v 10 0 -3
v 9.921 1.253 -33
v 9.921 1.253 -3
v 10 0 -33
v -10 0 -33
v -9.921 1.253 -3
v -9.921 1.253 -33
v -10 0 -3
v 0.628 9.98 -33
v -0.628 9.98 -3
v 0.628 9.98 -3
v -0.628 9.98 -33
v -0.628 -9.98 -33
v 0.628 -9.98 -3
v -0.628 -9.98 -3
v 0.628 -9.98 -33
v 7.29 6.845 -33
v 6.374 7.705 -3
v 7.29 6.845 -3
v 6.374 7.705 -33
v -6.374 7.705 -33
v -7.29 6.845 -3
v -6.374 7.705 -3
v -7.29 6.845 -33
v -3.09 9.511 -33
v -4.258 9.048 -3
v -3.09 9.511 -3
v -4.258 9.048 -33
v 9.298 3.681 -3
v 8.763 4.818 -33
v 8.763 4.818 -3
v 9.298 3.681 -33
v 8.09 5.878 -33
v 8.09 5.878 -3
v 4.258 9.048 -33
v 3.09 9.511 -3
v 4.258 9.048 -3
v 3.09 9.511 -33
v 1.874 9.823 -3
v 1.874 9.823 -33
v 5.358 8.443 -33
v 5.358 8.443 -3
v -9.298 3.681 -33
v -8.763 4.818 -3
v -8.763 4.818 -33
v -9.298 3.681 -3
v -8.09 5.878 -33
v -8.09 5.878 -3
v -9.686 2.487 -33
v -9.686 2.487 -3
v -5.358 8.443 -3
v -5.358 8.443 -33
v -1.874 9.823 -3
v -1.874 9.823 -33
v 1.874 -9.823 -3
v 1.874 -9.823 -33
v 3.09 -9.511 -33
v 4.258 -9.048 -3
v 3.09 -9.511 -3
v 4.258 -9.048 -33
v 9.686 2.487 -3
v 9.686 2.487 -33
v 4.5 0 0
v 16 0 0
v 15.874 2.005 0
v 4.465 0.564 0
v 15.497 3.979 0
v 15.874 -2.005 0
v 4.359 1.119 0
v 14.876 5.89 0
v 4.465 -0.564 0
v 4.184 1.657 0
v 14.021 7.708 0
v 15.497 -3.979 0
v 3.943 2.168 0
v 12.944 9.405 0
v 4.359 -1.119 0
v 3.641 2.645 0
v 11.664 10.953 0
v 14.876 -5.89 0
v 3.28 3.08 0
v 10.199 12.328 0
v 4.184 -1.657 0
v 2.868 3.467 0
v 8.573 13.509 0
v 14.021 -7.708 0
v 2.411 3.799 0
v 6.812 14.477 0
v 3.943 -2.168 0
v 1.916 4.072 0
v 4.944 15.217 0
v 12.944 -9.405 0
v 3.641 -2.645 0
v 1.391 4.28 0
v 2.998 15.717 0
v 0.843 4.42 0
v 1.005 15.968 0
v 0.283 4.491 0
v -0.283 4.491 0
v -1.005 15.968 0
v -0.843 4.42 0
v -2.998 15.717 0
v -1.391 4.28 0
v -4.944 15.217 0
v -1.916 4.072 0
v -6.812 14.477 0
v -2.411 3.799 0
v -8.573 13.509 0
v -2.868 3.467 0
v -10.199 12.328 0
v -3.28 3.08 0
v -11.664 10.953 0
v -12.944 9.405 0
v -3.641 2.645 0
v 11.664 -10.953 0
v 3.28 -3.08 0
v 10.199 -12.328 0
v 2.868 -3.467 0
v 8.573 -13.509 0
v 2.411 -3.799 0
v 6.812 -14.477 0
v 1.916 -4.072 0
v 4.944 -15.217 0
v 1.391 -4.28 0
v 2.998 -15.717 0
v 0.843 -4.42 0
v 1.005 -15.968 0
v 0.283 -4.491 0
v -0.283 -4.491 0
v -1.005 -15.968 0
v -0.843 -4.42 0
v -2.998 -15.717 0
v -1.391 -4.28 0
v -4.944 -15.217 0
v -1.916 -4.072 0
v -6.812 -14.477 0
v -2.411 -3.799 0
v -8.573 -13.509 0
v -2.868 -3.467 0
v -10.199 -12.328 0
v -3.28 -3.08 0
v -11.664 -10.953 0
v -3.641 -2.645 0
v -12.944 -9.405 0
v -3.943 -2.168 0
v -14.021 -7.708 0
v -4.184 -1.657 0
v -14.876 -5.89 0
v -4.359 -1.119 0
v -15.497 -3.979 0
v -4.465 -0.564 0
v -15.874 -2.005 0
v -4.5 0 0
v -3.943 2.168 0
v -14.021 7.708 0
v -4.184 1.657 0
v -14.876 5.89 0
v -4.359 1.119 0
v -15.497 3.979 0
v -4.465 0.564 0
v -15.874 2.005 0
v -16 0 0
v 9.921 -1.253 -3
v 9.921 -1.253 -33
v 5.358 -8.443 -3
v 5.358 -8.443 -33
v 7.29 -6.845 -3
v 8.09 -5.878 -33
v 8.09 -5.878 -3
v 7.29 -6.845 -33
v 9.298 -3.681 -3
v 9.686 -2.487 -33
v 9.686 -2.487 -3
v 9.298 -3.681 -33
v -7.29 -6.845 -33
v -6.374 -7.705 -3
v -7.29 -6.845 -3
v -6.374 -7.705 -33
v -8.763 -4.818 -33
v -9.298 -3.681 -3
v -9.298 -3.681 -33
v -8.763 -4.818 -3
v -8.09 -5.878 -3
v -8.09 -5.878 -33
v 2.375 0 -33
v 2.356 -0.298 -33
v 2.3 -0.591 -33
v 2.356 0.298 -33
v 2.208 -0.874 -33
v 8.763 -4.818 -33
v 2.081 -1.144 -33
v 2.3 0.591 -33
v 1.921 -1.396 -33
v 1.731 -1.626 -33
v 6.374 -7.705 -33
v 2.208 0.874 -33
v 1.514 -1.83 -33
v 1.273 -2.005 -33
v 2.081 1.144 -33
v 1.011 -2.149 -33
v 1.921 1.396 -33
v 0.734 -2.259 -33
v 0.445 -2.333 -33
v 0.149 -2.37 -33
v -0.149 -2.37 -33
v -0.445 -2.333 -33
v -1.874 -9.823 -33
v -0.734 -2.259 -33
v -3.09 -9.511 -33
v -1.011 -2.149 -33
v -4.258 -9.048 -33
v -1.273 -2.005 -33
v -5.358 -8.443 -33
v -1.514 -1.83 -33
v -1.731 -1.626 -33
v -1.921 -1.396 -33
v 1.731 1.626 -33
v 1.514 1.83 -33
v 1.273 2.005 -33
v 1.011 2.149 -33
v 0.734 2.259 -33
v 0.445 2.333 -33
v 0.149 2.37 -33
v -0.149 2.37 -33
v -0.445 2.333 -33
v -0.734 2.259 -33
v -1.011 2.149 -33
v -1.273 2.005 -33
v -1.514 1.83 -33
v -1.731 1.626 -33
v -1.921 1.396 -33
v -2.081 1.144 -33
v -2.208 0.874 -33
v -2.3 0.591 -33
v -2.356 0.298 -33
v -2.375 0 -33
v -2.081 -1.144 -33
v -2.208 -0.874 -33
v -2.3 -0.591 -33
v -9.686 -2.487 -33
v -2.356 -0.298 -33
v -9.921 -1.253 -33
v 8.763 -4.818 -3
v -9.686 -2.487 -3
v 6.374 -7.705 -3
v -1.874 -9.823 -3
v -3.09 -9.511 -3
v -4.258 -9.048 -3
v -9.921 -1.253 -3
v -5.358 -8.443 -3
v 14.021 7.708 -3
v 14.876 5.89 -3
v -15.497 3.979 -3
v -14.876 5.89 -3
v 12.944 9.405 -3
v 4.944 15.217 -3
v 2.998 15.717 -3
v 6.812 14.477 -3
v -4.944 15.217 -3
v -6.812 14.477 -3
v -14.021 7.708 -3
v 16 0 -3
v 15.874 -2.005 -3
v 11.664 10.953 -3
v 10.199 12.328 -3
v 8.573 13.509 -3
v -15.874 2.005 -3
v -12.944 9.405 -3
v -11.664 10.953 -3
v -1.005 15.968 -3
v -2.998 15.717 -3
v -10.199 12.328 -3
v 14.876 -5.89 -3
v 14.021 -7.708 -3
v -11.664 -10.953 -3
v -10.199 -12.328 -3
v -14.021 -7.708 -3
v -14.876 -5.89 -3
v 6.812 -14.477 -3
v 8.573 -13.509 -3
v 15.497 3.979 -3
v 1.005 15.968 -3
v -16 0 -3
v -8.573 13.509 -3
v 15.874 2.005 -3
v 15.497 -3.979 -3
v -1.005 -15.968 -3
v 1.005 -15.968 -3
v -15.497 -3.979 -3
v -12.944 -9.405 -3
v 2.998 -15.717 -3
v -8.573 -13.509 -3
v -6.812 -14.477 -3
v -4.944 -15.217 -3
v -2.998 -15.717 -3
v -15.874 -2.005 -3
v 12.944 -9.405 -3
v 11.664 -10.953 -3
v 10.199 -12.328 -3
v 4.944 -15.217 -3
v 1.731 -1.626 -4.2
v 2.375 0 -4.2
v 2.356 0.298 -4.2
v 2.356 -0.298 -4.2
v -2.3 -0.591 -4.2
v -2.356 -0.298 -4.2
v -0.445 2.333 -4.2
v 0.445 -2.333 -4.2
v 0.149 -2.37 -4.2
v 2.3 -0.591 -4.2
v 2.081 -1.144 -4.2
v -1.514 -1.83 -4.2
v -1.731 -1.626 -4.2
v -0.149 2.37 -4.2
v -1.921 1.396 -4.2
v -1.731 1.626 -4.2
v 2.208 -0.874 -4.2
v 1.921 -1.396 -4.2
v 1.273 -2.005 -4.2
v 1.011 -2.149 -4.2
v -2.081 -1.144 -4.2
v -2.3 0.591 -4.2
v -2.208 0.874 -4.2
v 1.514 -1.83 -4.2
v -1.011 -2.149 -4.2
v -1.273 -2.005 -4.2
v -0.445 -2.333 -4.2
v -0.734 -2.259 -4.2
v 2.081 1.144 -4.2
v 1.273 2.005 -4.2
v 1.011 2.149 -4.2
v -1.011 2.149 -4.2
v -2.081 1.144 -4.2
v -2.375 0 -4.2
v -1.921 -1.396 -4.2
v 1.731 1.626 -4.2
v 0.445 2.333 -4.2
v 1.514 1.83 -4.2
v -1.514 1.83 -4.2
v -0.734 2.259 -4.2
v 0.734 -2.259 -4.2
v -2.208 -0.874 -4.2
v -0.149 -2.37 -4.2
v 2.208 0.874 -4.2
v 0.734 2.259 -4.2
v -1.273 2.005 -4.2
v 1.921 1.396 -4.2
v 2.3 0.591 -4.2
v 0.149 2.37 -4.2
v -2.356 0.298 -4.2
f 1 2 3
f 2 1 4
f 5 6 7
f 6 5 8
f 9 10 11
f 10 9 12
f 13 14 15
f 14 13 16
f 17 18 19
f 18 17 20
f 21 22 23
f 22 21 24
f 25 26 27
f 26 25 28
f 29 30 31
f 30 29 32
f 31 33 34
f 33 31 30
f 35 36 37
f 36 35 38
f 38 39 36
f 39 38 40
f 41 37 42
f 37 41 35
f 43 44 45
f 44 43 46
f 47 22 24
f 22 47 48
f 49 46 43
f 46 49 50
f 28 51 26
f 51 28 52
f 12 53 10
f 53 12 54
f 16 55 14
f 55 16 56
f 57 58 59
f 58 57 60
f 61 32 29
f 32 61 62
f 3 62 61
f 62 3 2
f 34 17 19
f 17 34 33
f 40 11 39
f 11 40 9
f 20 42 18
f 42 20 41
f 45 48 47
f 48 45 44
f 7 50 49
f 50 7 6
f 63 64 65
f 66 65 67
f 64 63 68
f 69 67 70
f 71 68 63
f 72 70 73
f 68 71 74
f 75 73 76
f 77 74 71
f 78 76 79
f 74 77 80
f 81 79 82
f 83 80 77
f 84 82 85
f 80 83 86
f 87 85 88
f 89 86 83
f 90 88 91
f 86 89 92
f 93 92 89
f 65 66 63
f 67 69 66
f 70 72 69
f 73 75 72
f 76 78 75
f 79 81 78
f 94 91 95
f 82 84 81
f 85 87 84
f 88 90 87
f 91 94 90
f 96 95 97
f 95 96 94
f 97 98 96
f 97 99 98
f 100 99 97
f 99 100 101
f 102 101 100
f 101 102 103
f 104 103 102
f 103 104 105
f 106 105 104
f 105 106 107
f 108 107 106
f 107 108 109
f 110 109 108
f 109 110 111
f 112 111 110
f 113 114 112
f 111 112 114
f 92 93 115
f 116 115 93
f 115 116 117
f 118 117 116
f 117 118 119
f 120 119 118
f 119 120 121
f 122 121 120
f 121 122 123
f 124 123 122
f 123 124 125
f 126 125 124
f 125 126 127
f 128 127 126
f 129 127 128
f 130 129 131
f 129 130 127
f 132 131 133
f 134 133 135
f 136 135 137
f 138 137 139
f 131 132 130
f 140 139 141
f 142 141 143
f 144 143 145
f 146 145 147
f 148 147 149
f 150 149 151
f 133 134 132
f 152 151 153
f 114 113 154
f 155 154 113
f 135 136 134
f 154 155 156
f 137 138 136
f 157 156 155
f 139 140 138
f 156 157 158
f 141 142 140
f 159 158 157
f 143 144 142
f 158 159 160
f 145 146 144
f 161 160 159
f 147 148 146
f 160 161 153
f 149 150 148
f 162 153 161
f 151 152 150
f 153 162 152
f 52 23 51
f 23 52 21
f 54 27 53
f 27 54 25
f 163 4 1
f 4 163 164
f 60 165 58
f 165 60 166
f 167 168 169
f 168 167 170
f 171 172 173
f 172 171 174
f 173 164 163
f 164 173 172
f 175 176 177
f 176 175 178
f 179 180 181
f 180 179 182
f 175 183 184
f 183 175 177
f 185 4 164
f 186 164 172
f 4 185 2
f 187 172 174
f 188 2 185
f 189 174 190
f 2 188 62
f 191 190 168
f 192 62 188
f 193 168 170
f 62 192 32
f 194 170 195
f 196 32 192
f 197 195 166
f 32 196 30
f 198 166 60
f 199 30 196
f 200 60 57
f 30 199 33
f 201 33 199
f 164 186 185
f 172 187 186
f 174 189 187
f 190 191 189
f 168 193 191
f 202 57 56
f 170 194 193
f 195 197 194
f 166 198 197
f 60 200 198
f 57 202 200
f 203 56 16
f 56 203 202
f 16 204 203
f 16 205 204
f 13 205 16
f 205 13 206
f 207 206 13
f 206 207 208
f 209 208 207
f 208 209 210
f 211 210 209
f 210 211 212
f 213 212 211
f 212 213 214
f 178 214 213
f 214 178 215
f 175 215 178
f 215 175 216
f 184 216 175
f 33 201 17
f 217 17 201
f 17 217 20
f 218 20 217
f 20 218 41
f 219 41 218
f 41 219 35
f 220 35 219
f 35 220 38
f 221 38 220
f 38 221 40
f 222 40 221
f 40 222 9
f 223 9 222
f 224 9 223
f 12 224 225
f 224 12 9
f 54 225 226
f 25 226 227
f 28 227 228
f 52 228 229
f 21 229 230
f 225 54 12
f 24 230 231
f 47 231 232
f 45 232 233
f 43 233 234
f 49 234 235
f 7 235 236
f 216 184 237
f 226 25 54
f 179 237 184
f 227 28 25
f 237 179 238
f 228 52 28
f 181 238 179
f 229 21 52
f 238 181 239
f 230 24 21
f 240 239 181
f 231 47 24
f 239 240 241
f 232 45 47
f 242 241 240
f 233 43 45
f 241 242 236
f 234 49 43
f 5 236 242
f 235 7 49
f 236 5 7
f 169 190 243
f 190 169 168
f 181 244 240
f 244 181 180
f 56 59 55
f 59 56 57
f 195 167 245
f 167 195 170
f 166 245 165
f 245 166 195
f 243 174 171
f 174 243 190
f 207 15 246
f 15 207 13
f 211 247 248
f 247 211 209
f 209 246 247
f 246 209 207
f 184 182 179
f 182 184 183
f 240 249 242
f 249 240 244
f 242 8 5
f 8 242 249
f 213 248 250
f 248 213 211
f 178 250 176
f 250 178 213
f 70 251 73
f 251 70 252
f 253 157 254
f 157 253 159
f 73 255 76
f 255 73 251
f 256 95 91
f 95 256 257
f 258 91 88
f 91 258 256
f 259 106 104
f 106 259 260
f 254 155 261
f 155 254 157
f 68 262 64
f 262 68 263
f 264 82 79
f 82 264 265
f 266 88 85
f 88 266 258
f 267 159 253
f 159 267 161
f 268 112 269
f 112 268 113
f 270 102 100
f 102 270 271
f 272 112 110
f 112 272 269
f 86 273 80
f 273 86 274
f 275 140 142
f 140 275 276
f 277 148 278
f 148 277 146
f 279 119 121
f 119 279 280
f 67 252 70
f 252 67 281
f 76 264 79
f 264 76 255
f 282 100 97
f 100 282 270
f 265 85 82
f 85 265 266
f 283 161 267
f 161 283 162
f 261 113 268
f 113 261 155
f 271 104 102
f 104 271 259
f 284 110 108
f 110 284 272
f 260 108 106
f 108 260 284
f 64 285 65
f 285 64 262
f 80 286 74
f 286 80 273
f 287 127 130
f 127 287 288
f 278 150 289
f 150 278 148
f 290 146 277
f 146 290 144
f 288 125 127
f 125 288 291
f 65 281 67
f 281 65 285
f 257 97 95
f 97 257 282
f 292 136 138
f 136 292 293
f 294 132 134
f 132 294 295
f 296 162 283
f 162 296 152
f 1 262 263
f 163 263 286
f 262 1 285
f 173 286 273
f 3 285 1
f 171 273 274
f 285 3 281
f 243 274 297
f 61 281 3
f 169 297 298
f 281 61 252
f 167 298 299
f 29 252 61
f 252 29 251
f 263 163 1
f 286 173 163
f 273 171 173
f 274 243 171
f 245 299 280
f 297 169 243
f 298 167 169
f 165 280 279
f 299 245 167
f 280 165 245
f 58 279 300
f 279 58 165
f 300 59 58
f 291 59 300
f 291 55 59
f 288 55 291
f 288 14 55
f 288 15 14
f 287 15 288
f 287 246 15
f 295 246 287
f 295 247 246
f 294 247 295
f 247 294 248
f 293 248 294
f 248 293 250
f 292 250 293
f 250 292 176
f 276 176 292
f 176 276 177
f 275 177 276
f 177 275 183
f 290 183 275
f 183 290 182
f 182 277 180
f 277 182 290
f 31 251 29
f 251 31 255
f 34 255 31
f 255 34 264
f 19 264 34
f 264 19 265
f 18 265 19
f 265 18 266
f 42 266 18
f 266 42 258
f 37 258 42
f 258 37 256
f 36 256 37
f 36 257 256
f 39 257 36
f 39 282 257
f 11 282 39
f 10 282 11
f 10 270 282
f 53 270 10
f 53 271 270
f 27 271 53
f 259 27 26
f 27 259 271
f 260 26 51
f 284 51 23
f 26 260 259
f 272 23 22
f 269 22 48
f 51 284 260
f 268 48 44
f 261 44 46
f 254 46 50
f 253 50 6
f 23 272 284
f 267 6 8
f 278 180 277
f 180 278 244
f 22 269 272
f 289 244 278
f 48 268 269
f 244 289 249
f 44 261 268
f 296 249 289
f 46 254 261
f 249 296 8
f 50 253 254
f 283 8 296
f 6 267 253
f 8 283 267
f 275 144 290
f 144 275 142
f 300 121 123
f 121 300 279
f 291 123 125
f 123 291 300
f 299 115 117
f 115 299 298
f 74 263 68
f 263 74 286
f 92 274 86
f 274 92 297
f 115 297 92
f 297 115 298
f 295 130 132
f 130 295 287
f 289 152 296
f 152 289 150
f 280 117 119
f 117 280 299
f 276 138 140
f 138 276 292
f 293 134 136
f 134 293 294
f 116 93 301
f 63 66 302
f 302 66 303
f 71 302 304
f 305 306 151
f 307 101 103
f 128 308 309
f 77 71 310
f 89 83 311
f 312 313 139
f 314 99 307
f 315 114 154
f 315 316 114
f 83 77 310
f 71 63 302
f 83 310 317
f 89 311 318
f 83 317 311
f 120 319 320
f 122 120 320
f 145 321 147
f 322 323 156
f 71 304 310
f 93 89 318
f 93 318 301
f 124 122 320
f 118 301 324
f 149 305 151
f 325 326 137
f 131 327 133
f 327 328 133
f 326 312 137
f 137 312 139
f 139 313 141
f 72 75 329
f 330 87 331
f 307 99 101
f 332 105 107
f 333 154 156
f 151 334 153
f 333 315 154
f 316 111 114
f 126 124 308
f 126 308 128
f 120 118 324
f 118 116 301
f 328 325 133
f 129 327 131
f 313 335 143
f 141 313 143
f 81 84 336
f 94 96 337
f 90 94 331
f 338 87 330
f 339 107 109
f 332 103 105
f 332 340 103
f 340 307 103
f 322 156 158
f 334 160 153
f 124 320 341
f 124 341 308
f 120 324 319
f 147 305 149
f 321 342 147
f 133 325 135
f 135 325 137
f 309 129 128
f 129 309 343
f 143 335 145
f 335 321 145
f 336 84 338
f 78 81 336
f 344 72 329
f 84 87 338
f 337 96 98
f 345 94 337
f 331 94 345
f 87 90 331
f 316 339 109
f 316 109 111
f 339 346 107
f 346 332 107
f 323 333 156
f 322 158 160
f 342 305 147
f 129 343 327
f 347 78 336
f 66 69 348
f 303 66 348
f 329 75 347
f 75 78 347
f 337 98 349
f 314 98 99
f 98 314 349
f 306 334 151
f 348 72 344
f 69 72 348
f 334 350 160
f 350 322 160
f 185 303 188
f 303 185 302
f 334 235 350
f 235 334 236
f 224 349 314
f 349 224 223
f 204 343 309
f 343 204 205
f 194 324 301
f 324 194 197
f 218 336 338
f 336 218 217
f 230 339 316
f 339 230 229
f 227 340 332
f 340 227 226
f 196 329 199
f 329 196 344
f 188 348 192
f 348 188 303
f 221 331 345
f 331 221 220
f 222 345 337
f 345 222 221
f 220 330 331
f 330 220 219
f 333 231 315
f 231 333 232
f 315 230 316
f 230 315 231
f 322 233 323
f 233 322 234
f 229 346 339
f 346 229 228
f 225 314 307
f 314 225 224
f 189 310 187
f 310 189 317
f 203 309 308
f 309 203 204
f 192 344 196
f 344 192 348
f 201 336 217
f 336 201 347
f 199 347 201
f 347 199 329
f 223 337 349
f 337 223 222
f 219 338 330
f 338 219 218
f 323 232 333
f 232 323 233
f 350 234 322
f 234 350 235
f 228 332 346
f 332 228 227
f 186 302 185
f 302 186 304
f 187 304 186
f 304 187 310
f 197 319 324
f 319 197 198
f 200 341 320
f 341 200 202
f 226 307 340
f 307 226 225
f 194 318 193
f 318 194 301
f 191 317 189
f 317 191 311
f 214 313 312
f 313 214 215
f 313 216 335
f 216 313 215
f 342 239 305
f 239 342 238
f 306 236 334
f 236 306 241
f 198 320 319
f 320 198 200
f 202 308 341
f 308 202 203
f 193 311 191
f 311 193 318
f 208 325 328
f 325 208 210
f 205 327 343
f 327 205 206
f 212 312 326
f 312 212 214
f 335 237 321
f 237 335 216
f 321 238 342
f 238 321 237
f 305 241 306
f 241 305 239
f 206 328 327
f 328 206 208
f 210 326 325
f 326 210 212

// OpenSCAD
$fn = 50;


difference() {
	union() {
		translate(v = [0, 0, -33.0000000000]) {
			cylinder(h = 33, r = 10.0000000000);
		}
		translate(v = [0, 0, -3.0000000000]) {
			cylinder(h = 3, r = 16.0000000000);
		}
	}
	union() {
		translate(v = [0, 0, 0]) {
			rotate(a = [0, 0, 0]) {
				difference() {
					union() {
						#translate(v = [0, 0, -33.0000000000]) {
							cylinder(h = 33, r = 2.2500000000);
						}
						#translate(v = [0, 0, -4.2000000000]) {
							cylinder(h = 4.2000000000, r1 = 2.3750000000, r2 = 4.5000000000);
						}
						#translate(v = [0, 0, -33.0000000000]) {
							cylinder(h = 33, r = 2.3750000000);
						}
						#translate(v = [0, 0, -33.0000000000]) {
							cylinder(h = 33, r = 2.2500000000);
						}
					}
					union();
				}
			}
		}
	}
}
